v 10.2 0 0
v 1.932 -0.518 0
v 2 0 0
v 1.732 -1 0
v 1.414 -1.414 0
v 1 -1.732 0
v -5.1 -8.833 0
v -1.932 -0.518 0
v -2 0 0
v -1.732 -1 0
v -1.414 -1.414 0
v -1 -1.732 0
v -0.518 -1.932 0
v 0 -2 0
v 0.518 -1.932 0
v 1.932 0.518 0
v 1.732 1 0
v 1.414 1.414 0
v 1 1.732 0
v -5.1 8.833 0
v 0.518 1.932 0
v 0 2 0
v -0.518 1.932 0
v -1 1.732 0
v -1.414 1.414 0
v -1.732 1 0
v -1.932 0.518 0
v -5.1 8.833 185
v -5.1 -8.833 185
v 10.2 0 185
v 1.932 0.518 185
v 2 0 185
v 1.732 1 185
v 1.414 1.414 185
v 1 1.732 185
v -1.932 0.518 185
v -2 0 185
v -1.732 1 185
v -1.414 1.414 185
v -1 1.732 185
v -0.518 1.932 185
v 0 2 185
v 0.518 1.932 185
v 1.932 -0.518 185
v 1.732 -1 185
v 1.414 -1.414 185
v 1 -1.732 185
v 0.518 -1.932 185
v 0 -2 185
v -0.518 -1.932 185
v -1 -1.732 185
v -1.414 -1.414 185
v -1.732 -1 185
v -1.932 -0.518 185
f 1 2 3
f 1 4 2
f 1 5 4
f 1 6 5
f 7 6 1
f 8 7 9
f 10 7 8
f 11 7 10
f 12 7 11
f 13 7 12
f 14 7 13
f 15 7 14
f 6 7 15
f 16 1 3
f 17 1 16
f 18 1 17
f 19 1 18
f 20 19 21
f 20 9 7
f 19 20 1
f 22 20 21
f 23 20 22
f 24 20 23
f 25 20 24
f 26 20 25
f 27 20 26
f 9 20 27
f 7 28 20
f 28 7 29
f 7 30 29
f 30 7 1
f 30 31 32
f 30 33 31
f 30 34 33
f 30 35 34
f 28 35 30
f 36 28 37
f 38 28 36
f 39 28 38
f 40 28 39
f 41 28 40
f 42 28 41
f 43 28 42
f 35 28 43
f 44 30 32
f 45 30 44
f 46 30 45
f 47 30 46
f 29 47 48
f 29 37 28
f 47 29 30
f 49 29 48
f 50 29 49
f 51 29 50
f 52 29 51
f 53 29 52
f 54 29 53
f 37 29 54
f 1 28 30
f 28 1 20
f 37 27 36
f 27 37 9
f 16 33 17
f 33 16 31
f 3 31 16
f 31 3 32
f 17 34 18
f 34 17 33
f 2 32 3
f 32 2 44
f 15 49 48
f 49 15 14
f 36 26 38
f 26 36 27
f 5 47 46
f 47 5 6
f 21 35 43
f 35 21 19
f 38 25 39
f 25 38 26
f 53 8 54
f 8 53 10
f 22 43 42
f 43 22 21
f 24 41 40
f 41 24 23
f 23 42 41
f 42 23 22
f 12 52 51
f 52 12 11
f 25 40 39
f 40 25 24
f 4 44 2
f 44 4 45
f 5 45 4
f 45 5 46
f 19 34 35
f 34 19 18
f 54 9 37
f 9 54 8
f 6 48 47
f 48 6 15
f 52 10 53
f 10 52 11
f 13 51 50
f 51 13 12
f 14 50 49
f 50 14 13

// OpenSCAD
// file: params.scad
// Chaeto reactor - shared parameters (all dimensions in mm)
// Edit the "purchased parts" block to match what you actually buy,
// then re-export the STLs (see ../Makefile).

$fn = 96;

// ---------- purchased parts ----------
tube_od    = 76.2;     // acrylic tube OD (3")
tube_wall  = 3.175;    // acrylic tube wall (1/8"). MEASURE your tube's real ID.
tube_len   = 190;      // acrylic tube cut length (also the printed body height)
tt_od      = 25;       // test tube OD (rimless 25 x 200 borosilicate)
tt_len     = 200;      // test tube length
hose_id    = 12;       // tubing ID the barbs are sized for (1/2")
rod_d      = 4;        // M4 tie rods

// ---------- derived ----------
tube_id    = tube_od - 2*tube_wall;
plug_od    = tube_id - 0.3;           // slip fit inside the tube
plug_h     = 14;
bore_d     = 62;                      // plenum / outlet cavity diameter
bore_r     = bore_d/2;

// tube-end O-ring (round cord, ID x CS)
oring_cs        = 2.5;
oring_id        = 64;                 // 64 x 2.5 mm
groove_root_r   = tube_id/2 - 0.85*oring_cs;   // ~15% squeeze against the tube ID
groove_w        = oring_cs + 0.7;

// test tube O-ring in the lid column
tt_oring_cs     = 2;                  // 24 x 2 mm
tt_bore_r       = (tt_od + 0.5)/2;
tt_groove_root_r= tt_od/2 + 0.85*tt_oring_cs;
tt_groove_w     = tt_oring_cs + 0.6;

// flanges / tie rods
flange_r   = tube_od/2 + 12;
rod_r      = tube_od/2 + 6;
rod_hole_d = rod_d + 0.5;
rod_angles = [60, 180, 300];
nut_af     = 7;                       // M4 nut across flats
nut_t      = 3.2;

// base
base_h     = 20;                      // flange thickness below tube seat
floor_t    = 3;
deck_t     = 4;
deck_od    = tube_id - 0.4;

// lid
screen_t   = 3;
flange_t   = 6;
col_r      = tt_bore_r + 4;
roof_h     = bore_r - col_r;          // 45 deg roof, prints without supports
top_z      = roof_h + 3;
lid_barb_x = 26;

// barbs / holes
barb_len   = 32;
barb_bore  = 8;
hole_d     = 2.5;                     // deck holes (flow in)
screen_hole_d = 2.0;                  // lid screen holes (flow out)

printed_bore_tol = 0.1;               // extra clearance on the printed body ID
// main file
// Triangular core for LED strip: one strip per face, slides into the test tube.
include <params.scad>

spine_len   = tt_len - 15;
spine_r     = 10.2;     // vertex radius (test tube ID is ~22)
module led_spine() {
    difference() {
        linear_extrude(spine_len) circle(r = spine_r, $fn = 3);
        translate([0, 0, -1]) cylinder(d = 4, h = spine_len + 2, $fn = 24);
    }
}
led_spine();
